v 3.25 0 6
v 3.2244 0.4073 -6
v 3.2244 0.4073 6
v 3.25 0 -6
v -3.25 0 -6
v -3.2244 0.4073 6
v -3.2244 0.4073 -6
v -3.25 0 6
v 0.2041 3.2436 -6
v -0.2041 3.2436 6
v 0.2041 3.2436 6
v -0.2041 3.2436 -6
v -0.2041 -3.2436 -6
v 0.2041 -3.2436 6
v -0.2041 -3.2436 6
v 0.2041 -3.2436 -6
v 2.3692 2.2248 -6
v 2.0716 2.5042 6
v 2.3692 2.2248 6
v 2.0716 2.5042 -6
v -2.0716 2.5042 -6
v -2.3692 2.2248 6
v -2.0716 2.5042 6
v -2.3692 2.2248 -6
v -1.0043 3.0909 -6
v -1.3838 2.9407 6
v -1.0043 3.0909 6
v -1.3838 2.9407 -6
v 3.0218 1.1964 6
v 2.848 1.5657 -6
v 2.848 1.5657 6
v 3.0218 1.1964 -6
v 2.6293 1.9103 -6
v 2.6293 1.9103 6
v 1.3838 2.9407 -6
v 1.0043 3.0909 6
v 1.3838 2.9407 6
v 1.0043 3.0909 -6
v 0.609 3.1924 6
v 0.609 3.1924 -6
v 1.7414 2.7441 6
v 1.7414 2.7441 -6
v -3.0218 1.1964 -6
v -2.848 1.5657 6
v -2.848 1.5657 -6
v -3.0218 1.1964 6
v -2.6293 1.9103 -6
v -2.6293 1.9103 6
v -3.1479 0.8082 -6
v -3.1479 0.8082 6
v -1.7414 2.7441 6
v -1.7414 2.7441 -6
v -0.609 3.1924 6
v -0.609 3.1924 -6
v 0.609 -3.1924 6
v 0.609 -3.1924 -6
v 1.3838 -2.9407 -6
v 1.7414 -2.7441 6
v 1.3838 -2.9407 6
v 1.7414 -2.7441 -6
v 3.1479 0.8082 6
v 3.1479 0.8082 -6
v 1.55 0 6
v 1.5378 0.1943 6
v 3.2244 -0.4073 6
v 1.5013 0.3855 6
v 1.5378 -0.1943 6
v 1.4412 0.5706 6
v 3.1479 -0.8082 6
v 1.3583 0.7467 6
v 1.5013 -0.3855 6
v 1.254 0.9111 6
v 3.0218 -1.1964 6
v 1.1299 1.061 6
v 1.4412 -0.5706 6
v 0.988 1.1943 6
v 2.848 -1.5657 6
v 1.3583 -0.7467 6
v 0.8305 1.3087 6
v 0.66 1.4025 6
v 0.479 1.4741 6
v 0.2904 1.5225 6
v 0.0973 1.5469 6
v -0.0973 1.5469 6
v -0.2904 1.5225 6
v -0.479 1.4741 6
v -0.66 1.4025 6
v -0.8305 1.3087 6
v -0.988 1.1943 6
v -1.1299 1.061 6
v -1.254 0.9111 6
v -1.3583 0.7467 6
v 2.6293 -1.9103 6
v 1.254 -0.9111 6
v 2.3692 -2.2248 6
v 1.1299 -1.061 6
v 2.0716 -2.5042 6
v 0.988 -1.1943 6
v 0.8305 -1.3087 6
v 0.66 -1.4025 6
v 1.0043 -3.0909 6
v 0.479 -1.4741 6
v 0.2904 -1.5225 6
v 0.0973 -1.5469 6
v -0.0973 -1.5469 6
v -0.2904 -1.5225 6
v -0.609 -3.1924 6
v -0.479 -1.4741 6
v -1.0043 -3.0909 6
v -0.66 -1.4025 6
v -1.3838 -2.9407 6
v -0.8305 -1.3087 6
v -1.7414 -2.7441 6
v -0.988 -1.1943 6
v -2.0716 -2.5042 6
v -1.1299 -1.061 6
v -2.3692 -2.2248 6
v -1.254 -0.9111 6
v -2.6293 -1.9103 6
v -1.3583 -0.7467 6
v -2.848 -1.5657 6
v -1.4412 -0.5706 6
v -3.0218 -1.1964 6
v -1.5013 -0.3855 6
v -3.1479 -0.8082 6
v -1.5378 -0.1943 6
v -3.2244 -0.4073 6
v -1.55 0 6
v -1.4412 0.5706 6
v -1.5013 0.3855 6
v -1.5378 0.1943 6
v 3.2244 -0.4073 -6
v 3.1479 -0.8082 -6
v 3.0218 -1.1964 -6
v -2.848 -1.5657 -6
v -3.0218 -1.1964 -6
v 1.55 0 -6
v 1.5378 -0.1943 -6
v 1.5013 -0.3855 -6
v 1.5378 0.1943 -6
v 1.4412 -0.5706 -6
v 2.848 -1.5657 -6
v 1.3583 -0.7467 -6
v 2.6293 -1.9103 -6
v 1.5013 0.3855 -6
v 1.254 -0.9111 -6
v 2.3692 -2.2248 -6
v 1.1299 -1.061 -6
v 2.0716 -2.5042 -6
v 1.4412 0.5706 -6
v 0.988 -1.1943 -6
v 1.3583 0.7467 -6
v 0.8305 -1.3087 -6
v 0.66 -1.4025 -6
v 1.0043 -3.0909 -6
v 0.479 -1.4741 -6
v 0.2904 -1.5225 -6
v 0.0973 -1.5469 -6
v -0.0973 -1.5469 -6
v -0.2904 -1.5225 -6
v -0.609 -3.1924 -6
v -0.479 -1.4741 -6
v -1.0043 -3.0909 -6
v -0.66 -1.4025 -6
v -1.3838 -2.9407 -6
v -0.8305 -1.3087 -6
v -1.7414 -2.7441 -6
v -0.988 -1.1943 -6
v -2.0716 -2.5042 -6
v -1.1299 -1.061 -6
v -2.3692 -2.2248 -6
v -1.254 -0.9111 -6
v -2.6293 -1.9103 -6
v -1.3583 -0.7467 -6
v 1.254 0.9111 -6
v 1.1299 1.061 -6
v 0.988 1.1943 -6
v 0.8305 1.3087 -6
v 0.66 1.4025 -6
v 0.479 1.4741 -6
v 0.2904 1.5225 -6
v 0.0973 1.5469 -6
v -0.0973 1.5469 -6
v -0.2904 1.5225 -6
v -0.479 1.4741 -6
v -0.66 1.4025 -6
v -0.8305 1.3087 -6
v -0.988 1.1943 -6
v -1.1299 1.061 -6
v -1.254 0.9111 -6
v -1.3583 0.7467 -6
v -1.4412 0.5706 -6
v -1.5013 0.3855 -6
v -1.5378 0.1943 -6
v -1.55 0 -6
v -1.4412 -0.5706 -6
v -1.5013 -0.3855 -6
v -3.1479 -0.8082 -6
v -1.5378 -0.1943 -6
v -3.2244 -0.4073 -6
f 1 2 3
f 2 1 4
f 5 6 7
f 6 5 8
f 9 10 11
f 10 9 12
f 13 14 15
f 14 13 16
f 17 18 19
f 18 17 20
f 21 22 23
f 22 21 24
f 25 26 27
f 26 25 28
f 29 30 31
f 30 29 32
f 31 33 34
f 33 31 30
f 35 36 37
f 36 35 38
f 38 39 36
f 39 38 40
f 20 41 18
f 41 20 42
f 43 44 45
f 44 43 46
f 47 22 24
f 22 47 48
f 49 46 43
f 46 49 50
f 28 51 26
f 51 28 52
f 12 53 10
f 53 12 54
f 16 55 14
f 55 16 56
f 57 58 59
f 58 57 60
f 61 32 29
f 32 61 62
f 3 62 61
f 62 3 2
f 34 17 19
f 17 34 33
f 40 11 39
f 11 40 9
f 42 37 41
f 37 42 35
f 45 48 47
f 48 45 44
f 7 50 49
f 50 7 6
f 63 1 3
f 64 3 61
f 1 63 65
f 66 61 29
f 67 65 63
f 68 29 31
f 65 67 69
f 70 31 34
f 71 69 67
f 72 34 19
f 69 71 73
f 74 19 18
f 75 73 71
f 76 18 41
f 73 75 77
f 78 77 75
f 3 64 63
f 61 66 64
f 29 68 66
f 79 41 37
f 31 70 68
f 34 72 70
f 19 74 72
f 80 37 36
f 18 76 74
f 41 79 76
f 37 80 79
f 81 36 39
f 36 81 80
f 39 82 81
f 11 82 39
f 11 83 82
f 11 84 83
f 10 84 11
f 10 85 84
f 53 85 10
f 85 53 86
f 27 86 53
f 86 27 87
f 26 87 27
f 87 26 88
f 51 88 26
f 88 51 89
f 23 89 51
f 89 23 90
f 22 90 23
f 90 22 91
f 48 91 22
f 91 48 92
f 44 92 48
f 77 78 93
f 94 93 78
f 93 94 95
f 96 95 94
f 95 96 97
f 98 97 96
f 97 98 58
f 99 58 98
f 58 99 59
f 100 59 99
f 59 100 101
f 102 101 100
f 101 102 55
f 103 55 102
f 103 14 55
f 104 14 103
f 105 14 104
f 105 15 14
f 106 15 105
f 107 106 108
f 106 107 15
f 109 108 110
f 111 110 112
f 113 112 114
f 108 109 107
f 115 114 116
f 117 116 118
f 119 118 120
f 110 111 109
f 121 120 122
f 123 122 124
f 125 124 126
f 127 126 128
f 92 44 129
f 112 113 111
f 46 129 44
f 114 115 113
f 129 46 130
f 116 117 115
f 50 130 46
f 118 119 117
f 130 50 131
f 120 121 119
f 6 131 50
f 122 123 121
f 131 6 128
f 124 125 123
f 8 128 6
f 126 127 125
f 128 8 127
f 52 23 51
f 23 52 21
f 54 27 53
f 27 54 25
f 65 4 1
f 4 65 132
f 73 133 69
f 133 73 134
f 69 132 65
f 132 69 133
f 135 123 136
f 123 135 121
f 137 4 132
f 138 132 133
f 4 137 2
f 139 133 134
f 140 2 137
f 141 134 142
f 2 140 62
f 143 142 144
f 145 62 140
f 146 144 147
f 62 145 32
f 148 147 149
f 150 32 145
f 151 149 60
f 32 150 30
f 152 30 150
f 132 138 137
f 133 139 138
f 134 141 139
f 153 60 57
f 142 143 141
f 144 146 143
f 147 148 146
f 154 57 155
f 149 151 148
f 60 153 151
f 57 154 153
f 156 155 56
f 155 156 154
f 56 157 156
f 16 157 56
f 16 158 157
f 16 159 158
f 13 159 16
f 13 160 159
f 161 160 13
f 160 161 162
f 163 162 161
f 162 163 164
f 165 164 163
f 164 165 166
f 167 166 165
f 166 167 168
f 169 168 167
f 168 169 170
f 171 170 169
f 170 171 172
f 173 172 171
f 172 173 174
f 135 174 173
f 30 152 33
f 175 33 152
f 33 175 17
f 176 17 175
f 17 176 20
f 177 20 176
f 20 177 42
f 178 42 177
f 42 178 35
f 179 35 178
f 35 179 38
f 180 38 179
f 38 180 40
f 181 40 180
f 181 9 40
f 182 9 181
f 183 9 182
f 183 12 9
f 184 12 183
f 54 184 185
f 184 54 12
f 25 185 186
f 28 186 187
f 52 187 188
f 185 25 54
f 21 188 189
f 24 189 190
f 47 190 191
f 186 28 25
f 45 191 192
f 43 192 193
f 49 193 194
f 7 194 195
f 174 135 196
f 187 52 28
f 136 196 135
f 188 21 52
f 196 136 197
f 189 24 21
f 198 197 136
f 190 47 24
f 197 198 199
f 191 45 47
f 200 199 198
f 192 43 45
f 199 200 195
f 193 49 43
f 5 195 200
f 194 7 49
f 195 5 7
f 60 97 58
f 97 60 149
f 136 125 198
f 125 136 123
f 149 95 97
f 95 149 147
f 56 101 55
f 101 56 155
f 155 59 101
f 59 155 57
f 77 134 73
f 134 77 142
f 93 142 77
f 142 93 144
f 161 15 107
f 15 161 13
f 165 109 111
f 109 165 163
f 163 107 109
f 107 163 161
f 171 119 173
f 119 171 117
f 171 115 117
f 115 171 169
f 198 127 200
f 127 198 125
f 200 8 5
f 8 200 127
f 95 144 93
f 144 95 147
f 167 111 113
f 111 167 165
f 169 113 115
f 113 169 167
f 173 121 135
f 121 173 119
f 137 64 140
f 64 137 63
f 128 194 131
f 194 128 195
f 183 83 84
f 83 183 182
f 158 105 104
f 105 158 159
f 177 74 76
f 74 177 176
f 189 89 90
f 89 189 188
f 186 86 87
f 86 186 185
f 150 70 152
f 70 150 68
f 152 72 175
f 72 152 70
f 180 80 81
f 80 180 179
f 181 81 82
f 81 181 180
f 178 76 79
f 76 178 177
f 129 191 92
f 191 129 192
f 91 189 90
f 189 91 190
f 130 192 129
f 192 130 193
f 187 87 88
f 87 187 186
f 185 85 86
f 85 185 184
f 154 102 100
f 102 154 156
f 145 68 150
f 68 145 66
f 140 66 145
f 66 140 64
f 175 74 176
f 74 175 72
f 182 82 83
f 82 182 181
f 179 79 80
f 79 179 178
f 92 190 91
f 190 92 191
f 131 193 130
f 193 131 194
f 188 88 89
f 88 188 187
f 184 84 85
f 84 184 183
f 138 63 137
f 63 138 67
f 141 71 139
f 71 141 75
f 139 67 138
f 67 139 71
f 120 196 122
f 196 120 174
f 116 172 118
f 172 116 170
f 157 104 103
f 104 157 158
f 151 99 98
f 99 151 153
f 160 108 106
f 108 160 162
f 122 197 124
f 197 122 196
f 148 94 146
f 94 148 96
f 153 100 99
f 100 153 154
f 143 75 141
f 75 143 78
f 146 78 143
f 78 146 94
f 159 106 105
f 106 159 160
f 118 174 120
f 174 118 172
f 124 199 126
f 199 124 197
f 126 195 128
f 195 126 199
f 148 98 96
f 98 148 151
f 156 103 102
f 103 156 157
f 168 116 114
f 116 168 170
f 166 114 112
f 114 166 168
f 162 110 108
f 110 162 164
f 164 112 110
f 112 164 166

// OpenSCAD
$fn = 50;


difference() {
	union() {
		translate(v = [0, 0, -6.0000000000]) {
			cylinder(h = 12, r = 3.2500000000);
		}
	}
	union() {
		translate(v = [0, 0, -100.0000000000]) {
			cylinder(h = 200, r = 1.5500000000);
		}
	}
}
